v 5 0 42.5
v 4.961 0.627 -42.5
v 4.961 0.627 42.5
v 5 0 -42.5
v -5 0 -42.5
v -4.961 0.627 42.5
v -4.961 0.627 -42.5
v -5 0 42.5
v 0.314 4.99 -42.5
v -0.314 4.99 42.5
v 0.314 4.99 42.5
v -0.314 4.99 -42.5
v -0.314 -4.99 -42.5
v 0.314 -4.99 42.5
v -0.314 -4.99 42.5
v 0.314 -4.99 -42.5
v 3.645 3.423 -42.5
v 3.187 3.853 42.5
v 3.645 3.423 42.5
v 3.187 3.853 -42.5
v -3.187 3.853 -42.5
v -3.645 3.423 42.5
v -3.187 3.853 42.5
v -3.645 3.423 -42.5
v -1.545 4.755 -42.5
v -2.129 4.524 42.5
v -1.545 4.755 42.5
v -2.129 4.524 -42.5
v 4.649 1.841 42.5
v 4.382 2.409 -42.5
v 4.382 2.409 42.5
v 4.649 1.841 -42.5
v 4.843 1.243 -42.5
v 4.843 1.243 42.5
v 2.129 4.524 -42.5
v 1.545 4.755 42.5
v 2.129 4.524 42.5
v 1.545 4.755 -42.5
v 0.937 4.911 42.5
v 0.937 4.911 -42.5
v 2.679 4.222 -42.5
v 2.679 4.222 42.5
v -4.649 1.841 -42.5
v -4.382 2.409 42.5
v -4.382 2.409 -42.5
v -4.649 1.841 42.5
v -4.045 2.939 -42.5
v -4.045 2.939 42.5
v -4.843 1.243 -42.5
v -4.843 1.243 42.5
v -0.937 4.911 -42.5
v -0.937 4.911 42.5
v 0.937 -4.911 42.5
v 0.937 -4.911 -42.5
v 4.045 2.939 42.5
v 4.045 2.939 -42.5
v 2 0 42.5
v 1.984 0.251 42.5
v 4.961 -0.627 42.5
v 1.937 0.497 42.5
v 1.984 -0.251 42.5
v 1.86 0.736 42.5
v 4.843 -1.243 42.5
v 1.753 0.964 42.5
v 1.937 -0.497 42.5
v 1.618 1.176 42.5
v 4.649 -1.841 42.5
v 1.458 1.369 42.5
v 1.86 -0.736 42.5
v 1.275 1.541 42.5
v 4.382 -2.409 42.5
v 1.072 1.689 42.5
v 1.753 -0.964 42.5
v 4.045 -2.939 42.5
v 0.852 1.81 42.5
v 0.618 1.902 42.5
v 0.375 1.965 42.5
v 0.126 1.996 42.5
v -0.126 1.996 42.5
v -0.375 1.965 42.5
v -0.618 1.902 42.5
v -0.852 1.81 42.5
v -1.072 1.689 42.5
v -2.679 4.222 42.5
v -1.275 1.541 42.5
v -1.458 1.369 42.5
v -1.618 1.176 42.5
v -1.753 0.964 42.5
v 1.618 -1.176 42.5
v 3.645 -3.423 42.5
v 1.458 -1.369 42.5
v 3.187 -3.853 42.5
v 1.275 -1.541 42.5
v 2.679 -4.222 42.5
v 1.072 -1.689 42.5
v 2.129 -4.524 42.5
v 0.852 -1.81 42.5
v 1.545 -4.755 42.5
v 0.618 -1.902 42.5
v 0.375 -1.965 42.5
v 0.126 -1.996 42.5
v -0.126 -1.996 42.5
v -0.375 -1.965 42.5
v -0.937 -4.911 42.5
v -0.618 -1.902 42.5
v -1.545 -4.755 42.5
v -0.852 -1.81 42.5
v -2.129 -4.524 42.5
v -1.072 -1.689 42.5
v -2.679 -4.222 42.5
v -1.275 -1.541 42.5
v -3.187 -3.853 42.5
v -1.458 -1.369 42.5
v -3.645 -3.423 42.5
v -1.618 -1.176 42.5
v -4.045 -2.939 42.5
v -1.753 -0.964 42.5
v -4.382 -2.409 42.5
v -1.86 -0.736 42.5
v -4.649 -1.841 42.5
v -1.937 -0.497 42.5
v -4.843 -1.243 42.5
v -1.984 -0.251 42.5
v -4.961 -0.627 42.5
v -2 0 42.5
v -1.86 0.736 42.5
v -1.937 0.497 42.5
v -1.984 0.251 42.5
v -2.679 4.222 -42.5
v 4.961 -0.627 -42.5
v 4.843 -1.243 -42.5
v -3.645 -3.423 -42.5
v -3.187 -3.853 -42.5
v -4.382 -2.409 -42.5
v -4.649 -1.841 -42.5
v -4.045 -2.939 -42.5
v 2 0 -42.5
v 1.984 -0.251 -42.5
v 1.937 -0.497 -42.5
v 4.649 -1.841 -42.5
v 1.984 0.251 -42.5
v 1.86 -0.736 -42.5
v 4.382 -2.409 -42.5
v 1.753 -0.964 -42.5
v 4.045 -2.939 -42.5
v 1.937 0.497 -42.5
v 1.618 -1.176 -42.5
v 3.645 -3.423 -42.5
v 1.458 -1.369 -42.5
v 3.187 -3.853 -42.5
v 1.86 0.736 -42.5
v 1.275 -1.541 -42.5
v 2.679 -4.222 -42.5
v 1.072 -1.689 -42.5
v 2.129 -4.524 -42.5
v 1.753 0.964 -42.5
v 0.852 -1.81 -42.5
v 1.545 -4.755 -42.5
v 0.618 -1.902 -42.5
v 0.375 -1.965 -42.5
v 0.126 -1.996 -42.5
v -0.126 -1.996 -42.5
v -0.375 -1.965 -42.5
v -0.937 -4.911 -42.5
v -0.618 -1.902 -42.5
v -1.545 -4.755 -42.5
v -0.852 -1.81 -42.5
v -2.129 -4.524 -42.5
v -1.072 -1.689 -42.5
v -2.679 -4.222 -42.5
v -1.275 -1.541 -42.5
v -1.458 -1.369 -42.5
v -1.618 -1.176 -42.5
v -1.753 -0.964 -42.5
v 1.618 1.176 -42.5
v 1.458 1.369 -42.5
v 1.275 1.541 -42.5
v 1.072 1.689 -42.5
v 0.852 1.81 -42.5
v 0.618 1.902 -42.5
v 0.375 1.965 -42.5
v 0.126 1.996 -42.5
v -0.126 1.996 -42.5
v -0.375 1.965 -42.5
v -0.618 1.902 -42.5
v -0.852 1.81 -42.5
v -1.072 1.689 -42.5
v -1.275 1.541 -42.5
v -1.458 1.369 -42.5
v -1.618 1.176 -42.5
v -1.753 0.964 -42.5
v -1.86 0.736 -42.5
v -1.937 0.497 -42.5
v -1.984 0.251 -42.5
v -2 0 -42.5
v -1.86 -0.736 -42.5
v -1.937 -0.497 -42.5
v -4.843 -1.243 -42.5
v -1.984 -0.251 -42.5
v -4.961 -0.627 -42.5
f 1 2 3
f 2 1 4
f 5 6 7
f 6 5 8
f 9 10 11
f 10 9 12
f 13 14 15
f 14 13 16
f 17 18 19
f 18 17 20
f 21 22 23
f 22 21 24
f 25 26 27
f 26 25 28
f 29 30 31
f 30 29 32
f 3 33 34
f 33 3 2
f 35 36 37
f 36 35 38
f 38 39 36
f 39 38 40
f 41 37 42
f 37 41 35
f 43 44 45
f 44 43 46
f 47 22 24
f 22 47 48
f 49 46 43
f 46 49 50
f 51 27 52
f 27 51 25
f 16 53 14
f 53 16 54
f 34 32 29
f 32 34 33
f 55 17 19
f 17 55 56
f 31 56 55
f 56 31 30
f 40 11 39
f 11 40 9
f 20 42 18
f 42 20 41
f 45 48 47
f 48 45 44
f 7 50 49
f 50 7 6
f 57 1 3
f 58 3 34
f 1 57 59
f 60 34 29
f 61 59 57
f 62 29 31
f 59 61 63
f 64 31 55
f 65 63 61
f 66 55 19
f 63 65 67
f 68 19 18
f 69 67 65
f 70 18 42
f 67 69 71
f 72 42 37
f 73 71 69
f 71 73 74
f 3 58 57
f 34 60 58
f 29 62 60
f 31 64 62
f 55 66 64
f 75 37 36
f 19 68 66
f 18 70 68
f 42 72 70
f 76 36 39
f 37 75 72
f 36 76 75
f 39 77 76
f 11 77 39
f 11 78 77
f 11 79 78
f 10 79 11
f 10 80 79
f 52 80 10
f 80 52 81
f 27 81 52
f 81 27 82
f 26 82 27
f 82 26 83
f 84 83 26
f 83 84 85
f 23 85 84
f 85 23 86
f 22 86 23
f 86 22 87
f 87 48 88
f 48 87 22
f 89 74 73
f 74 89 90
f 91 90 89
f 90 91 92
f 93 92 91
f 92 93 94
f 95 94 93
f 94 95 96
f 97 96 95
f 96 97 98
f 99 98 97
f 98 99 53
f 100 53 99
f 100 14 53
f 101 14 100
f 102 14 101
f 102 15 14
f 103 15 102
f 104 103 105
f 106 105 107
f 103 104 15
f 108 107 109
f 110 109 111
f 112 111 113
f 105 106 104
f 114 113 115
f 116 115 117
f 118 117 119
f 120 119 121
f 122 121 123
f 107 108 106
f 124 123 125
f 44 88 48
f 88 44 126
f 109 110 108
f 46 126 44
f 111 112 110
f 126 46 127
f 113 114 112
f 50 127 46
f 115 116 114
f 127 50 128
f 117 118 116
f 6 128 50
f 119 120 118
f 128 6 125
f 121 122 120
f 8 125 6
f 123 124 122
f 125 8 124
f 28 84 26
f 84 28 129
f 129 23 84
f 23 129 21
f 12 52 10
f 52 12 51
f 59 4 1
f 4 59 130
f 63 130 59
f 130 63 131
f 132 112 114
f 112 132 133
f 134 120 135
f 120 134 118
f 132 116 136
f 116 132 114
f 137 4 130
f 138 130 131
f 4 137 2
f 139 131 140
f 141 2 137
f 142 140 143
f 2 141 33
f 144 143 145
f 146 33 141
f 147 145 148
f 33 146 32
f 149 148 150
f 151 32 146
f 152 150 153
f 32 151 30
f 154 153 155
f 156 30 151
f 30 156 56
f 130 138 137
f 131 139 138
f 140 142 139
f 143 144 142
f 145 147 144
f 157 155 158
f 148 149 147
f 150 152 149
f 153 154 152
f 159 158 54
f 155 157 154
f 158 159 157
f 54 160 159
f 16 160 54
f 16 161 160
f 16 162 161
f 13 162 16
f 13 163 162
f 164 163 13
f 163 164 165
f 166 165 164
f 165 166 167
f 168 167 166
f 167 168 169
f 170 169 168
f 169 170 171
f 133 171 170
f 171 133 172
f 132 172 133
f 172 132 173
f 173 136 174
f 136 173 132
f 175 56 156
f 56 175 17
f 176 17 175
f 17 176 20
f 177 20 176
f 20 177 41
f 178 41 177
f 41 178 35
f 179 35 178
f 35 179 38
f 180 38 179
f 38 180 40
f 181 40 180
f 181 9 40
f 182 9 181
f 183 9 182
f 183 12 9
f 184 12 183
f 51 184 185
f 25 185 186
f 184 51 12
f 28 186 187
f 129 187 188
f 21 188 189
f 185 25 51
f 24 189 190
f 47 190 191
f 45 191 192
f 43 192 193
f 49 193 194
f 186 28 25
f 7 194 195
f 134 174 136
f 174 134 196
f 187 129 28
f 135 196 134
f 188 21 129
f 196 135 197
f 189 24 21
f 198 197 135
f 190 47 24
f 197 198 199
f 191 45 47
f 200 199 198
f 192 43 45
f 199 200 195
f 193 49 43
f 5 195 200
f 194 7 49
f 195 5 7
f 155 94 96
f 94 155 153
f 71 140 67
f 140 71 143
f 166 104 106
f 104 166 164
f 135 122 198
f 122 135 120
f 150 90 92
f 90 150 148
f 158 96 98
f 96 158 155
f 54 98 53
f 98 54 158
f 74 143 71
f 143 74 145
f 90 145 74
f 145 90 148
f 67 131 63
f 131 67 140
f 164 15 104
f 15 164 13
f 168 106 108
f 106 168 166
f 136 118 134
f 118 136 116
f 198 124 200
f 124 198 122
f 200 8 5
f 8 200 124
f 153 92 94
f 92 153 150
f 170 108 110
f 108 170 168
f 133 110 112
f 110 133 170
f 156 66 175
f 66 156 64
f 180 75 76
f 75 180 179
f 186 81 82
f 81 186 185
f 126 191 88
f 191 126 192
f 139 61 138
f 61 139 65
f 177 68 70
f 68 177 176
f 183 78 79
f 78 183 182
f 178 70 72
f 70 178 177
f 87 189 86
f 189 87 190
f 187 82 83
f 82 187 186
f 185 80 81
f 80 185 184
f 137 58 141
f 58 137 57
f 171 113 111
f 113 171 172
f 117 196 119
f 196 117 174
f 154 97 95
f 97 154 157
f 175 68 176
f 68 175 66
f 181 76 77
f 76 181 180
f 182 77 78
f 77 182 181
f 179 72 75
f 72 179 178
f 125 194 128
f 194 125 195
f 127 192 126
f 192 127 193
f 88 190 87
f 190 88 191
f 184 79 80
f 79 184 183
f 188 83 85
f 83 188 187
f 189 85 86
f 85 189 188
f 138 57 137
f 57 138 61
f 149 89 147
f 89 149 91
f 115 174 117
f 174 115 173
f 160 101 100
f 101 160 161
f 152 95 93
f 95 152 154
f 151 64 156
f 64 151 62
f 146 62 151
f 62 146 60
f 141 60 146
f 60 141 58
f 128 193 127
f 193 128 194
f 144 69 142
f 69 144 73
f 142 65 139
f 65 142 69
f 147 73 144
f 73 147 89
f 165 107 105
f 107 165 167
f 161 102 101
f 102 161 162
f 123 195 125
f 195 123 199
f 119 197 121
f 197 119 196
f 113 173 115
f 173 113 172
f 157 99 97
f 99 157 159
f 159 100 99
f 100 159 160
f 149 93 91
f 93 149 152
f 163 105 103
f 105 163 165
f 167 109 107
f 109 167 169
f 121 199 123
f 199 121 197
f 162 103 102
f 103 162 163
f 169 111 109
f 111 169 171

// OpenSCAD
$fn = 50;


difference() {
	union() {
		translate(v = [0, 0, -42.5000000000]) {
			cylinder(h = 85, r = 5.0000000000);
		}
	}
	union() {
		translate(v = [0, 0, -100.0000000000]) {
			cylinder(h = 200, r = 2);
		}
	}
}
